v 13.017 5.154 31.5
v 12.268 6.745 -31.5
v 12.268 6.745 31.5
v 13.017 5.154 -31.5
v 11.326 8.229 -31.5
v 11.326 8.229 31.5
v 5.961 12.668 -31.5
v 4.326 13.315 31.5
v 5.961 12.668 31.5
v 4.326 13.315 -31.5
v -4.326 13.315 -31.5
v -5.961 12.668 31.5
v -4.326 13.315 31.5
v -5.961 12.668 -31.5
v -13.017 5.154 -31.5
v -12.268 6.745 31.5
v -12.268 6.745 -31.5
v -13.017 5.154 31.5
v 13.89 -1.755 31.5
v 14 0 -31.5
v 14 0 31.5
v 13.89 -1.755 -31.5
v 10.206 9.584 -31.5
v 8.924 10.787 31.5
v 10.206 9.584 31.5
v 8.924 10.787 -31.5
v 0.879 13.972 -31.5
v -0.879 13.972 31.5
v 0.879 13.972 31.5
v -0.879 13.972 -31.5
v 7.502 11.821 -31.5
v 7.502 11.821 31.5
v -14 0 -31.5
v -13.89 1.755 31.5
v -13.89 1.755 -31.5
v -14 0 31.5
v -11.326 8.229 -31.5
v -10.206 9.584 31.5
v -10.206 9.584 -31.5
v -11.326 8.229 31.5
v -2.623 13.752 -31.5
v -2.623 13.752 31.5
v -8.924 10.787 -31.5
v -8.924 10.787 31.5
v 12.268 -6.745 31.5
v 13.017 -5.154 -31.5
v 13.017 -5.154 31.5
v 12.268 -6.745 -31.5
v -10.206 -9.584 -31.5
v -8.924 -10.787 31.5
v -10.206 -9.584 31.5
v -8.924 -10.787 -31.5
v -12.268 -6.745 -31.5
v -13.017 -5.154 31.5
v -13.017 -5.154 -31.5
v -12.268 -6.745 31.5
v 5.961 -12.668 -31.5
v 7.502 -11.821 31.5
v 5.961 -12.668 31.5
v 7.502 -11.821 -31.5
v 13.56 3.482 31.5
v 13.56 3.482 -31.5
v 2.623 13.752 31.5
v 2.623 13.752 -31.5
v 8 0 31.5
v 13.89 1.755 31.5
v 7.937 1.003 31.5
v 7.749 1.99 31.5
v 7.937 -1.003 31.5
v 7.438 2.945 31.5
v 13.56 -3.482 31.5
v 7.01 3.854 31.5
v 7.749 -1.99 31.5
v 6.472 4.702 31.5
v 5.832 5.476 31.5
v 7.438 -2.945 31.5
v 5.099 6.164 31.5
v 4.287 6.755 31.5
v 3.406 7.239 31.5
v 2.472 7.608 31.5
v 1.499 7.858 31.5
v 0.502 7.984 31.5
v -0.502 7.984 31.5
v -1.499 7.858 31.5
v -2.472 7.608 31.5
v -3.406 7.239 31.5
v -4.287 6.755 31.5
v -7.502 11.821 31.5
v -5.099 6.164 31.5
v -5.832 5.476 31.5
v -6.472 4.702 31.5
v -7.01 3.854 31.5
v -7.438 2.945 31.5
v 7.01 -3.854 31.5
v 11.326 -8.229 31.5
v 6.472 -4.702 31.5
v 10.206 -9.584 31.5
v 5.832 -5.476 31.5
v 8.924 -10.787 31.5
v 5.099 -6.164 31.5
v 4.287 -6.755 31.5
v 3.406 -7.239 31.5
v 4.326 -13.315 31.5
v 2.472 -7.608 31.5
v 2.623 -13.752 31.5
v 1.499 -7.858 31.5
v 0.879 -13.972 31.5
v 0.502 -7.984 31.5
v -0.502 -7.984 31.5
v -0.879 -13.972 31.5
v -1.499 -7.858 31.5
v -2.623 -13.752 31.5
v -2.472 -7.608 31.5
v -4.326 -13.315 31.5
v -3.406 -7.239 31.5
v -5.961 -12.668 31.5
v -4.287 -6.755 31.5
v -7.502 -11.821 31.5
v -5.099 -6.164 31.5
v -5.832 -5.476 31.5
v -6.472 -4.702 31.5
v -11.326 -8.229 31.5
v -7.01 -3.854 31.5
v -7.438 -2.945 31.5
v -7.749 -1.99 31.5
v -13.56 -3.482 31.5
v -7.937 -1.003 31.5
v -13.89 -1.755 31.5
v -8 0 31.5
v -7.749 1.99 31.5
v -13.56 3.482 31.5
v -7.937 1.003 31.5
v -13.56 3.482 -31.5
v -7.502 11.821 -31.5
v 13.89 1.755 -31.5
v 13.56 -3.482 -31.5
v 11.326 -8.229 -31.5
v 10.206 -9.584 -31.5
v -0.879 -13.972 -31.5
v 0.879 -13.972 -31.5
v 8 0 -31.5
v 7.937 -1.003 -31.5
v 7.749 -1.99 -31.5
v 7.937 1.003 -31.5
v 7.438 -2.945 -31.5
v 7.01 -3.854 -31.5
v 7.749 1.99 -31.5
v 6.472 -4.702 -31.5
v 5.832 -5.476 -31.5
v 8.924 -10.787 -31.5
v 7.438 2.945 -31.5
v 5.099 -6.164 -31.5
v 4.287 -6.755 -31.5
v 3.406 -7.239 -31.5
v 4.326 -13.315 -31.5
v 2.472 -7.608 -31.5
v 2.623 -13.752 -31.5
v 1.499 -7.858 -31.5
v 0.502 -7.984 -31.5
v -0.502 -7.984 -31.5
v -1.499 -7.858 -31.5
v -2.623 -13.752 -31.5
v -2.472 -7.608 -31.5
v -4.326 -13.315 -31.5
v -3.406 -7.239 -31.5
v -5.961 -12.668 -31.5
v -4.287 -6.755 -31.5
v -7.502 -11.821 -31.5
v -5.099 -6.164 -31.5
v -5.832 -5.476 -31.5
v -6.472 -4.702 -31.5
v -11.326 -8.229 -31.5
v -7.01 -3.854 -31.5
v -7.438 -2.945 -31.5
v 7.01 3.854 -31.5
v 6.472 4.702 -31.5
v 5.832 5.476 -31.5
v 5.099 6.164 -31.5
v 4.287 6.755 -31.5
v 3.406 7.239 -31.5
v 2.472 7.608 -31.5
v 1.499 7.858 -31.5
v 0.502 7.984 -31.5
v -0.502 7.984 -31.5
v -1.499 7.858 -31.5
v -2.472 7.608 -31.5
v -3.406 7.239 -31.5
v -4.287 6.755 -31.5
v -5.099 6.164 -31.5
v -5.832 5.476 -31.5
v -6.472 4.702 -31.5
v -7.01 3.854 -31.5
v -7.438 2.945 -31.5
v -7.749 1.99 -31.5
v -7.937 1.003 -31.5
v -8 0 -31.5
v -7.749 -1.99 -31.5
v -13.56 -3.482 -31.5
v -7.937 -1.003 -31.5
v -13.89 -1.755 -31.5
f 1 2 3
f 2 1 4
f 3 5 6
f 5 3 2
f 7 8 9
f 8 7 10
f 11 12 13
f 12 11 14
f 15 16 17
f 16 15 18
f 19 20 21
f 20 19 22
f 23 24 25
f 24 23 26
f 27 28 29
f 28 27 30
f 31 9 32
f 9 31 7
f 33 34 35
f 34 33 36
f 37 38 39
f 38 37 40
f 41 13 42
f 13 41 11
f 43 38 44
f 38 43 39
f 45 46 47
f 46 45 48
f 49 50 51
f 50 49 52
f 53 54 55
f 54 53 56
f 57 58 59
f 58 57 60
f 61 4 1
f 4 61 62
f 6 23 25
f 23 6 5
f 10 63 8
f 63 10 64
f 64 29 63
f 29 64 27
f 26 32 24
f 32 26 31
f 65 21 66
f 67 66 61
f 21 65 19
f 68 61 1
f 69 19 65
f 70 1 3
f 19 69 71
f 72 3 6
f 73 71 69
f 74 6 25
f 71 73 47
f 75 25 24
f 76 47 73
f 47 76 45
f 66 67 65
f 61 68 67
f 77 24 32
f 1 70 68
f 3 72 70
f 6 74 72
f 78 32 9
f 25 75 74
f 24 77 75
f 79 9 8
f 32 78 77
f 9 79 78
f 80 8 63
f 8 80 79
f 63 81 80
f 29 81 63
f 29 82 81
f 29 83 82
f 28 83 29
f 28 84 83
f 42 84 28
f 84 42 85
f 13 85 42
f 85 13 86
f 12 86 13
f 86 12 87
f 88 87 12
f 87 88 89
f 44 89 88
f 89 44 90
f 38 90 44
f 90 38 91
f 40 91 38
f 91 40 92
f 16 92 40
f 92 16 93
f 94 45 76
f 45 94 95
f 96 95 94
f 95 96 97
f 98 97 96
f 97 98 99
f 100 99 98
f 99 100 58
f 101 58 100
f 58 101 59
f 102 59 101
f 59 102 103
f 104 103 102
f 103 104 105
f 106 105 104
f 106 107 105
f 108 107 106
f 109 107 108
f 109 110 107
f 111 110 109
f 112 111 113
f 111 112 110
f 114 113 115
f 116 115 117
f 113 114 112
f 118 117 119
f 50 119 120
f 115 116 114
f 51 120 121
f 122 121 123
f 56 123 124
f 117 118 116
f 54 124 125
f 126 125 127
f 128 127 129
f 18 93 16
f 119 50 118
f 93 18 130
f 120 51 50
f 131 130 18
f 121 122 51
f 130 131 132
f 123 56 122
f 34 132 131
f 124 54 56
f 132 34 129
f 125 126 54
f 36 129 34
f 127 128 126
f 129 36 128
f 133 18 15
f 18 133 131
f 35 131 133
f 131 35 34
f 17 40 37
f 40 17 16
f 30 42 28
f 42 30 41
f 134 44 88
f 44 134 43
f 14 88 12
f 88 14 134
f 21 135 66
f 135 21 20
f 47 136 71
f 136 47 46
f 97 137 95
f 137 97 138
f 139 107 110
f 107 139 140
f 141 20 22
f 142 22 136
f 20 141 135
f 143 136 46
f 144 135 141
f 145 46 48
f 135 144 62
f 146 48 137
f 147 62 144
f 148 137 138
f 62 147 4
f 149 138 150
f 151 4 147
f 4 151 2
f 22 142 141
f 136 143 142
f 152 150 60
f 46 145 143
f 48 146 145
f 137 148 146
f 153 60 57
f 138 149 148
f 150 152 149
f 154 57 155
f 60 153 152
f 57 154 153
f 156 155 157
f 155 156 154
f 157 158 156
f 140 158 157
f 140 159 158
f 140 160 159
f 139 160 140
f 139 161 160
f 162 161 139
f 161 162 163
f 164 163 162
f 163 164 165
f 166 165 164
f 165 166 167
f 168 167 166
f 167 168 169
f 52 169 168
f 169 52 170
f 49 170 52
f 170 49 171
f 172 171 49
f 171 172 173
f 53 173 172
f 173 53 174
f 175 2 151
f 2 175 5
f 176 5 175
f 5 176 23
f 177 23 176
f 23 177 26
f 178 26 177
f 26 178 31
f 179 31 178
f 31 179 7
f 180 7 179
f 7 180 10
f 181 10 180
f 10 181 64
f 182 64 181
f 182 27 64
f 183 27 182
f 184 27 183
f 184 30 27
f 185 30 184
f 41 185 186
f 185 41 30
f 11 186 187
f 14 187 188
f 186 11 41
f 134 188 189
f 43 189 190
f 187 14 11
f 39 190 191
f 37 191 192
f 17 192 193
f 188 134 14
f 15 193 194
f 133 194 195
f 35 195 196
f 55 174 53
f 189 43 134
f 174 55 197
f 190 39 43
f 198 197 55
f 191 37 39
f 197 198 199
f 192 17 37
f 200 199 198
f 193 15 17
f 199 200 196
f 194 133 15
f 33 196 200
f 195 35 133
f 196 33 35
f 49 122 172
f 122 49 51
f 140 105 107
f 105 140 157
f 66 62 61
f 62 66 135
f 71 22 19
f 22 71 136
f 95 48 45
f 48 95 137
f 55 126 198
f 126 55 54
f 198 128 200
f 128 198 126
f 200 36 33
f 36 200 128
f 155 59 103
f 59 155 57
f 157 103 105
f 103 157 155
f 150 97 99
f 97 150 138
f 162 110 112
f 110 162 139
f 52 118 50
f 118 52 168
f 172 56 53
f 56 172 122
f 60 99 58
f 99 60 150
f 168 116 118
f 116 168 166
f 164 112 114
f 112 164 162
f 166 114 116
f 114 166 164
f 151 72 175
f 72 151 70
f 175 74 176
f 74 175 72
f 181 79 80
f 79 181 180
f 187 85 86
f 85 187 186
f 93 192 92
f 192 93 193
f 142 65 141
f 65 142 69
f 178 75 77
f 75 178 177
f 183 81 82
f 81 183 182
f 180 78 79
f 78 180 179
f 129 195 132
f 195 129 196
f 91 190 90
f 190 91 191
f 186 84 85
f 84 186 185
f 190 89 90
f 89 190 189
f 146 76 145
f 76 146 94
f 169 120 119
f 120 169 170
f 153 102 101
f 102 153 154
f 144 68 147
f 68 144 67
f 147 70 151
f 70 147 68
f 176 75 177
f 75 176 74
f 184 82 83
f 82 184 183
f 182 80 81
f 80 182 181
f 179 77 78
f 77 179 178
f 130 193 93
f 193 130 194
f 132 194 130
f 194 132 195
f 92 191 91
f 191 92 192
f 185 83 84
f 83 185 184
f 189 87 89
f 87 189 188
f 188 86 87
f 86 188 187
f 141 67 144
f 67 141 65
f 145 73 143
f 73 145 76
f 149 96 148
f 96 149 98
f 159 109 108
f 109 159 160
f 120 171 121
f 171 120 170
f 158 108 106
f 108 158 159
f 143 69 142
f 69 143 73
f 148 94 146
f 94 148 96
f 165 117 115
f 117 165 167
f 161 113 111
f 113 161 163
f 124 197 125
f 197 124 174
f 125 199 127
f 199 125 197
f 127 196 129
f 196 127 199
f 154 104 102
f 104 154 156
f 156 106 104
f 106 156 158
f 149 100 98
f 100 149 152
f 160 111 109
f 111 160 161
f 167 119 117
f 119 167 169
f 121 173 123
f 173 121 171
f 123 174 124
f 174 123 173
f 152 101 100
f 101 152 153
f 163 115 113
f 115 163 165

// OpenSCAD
$fn = 50;


difference() {
	union() {
		translate(v = [0, 0, -31.5000000000]) {
			cylinder(h = 63, r = 14.0000000000);
		}
	}
	union() {
		translate(v = [0, 0, -100.0000000000]) {
			cylinder(h = 200, r = 8);
		}
	}
}
